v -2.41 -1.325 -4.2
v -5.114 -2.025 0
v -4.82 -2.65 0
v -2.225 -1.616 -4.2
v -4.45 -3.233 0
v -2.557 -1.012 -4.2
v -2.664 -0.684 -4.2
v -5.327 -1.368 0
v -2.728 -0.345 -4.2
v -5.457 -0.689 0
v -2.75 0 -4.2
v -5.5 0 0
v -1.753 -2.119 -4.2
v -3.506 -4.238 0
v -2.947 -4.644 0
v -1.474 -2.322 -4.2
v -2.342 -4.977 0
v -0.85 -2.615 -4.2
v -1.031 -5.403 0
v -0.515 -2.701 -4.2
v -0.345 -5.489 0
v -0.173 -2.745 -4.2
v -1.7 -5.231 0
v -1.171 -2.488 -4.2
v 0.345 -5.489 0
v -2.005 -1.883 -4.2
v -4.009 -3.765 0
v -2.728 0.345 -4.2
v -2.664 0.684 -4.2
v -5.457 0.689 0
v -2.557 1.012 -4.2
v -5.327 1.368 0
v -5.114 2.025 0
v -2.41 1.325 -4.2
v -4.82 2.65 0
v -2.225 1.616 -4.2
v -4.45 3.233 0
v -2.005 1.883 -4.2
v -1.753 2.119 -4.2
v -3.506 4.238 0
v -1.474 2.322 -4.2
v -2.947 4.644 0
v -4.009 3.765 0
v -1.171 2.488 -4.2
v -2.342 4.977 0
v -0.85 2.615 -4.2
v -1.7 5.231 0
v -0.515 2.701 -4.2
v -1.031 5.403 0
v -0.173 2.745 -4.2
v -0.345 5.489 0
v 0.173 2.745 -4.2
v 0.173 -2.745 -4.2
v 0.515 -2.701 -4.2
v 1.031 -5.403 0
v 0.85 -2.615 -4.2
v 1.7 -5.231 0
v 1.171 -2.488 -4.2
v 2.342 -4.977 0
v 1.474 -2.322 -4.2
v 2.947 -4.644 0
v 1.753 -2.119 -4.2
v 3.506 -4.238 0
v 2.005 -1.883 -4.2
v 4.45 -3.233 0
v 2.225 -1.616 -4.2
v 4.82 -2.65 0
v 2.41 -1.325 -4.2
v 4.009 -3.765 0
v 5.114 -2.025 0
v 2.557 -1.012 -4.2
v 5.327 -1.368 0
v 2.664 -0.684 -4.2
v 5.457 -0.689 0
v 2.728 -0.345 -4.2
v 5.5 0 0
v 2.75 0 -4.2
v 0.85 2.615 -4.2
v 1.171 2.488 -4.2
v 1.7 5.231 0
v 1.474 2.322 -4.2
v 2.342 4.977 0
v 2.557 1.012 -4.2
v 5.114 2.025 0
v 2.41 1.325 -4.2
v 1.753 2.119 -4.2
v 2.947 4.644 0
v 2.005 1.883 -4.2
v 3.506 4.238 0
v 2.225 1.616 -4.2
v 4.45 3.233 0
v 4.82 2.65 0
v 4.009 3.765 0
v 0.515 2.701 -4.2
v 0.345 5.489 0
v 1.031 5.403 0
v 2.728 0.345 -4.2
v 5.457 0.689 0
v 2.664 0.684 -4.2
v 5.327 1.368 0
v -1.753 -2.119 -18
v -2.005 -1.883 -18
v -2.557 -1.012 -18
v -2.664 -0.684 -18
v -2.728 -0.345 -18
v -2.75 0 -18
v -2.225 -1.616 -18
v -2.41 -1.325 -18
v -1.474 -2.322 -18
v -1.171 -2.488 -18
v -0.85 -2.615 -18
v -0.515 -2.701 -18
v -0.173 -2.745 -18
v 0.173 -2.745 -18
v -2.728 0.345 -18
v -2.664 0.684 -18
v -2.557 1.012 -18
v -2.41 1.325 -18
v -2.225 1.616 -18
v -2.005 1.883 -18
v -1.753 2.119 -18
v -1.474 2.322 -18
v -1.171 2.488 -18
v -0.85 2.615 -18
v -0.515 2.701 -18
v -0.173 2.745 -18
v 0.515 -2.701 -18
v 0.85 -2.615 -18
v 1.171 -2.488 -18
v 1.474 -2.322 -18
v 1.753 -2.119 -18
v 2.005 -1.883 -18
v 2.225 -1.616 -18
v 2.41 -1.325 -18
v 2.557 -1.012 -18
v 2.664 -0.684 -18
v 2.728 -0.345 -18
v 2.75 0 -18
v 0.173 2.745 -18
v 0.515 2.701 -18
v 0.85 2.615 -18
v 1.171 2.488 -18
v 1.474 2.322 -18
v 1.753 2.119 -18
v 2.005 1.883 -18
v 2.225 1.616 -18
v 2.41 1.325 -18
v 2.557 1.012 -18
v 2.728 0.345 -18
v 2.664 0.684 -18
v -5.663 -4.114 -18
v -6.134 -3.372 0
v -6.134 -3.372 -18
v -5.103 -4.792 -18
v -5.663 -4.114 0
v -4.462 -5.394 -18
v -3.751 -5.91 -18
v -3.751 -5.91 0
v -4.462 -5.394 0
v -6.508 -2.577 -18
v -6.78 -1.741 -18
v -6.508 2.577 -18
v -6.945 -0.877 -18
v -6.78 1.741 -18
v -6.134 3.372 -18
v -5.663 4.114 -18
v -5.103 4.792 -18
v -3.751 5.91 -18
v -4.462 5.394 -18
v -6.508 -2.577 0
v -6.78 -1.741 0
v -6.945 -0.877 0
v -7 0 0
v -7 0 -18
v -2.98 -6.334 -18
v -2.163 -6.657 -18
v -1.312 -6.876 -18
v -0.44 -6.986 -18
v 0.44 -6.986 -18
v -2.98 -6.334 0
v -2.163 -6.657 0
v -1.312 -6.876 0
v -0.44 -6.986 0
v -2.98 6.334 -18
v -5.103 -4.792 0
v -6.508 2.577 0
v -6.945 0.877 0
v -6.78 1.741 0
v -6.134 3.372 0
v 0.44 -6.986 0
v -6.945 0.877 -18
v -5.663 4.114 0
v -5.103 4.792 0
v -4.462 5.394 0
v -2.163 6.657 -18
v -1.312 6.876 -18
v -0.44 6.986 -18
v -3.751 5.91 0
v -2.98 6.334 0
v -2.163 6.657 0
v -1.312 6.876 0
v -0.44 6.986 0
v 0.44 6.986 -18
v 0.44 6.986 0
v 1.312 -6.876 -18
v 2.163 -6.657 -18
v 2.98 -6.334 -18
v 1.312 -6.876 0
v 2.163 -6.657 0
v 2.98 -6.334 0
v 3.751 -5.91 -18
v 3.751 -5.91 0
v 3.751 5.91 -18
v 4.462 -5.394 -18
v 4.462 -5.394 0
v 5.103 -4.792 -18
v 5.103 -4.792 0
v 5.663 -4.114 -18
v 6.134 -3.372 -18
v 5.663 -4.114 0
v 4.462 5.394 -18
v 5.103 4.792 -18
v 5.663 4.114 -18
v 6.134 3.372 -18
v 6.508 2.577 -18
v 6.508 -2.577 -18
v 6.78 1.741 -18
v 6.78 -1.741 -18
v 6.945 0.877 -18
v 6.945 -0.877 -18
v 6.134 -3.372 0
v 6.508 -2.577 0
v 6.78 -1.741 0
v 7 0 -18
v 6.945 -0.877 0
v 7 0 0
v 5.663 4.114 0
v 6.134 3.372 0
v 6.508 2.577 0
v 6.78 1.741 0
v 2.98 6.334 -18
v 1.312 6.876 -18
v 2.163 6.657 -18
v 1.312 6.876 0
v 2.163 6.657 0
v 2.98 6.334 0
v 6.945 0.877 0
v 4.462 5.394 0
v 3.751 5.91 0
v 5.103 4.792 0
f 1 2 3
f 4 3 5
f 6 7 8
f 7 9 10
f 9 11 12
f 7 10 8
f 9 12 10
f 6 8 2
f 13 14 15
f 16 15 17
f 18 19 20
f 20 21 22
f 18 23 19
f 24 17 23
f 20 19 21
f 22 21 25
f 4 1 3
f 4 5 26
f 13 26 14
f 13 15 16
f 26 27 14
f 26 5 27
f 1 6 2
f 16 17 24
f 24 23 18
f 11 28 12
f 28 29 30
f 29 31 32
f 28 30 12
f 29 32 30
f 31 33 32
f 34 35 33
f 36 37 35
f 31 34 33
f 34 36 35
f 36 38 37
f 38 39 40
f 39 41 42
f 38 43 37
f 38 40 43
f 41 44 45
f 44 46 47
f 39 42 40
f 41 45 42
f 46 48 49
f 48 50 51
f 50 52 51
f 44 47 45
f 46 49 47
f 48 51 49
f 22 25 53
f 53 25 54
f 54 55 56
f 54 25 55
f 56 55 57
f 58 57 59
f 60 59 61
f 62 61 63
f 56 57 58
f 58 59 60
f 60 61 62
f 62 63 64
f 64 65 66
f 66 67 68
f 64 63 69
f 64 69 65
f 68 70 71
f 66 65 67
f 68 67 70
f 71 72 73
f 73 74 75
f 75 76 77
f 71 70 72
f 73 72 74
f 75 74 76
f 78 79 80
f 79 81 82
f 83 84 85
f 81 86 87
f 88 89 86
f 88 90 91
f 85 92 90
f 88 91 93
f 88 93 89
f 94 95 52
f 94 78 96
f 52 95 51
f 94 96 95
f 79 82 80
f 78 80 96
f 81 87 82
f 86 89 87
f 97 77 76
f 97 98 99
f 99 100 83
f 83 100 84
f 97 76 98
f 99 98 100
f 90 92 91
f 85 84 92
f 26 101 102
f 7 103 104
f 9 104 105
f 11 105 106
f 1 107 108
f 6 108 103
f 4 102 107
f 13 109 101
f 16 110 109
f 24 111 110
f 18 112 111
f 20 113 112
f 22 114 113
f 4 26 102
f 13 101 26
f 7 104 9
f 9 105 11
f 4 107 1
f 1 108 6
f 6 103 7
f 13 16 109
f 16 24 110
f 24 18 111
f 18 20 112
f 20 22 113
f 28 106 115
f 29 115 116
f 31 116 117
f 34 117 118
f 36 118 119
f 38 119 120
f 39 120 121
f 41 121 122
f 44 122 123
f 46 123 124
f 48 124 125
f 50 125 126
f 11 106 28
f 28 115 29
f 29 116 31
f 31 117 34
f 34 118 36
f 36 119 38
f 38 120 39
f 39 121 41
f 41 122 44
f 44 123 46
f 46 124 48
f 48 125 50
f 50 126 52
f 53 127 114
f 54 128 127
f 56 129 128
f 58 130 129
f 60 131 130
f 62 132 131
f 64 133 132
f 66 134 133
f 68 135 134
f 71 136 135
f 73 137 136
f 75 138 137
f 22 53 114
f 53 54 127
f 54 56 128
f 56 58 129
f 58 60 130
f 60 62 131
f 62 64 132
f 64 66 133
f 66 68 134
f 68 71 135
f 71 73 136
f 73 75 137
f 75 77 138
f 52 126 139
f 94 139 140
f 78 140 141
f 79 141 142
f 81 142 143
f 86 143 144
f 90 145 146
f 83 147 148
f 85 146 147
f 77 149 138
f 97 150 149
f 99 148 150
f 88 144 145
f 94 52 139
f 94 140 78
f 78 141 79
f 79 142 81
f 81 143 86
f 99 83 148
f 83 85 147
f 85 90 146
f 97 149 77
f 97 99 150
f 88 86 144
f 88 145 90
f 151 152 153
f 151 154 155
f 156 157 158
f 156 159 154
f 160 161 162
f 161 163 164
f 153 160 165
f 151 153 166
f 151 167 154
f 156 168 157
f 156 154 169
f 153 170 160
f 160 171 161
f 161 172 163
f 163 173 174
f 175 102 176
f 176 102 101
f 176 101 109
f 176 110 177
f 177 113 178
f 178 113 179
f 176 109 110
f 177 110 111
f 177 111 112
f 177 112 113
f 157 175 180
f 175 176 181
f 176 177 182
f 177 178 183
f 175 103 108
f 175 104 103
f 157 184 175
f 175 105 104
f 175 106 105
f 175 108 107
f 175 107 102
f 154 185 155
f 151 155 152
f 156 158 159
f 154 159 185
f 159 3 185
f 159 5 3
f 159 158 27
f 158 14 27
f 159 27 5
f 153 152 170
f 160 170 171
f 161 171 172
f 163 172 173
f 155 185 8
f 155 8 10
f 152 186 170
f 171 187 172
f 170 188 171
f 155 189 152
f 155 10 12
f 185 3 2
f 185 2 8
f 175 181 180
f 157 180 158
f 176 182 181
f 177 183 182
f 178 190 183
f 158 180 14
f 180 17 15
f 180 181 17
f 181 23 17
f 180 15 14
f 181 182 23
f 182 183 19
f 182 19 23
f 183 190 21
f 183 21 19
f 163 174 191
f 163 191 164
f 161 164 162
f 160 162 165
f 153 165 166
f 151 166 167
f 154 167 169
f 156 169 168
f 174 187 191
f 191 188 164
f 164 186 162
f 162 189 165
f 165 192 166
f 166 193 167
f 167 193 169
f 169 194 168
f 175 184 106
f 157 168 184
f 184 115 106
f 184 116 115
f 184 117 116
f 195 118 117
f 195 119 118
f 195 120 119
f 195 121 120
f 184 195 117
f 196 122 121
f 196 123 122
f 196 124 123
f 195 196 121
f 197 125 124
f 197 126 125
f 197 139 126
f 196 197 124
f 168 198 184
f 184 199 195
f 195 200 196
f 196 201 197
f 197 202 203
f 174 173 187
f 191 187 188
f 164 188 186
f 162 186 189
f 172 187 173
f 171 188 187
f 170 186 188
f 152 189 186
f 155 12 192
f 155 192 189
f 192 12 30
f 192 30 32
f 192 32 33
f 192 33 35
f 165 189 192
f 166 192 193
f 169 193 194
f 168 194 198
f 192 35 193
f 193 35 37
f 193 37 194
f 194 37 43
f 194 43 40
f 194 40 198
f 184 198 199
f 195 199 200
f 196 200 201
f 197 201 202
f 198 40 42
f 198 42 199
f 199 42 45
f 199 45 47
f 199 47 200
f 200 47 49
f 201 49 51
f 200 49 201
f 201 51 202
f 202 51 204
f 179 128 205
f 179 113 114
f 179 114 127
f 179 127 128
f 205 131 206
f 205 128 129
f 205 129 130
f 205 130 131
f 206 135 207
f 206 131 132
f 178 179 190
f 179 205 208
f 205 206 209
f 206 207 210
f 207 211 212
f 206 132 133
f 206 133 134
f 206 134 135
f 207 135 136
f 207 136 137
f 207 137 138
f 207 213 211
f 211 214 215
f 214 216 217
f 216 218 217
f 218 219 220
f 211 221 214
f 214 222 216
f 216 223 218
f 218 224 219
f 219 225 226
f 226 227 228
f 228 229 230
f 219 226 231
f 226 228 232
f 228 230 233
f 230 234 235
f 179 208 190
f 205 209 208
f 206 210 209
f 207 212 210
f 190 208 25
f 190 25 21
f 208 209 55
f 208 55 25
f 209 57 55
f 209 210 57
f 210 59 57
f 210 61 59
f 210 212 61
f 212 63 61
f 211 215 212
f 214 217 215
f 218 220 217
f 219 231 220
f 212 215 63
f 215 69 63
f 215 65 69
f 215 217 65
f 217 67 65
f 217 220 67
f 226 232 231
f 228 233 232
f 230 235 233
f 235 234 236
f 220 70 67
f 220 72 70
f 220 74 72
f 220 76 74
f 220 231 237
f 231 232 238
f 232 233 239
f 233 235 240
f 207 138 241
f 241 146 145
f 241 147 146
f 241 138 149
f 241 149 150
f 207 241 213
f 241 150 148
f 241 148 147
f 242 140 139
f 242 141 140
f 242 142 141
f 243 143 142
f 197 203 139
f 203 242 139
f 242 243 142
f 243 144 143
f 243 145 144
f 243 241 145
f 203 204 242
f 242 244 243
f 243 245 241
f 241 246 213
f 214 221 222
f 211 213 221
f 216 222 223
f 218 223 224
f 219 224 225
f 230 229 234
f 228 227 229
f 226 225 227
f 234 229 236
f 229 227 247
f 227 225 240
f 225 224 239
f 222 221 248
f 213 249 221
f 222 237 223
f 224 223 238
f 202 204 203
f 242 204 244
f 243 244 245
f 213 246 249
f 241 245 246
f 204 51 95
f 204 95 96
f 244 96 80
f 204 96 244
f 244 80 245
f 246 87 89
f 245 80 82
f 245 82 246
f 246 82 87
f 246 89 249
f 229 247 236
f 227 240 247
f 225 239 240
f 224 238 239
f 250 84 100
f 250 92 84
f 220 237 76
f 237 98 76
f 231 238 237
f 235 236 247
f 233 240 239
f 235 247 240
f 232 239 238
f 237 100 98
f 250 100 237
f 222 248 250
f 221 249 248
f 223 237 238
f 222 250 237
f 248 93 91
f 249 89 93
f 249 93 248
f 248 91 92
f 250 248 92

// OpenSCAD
$fn = 50;


difference() {
	union() {
		translate(v = [0, 0, -18.0000000000]) {
			cylinder(h = 18, r = 7.0000000000);
		}
	}
	union() {
		translate(v = [0, 0, 0]) {
			rotate(a = [0, 0, 0]) {
				difference() {
					union() {
						translate(v = [0, 0, -21.0000000000]) {
							cylinder(h = 21, r = 2.2500000000);
						}
						translate(v = [0, 0, -4.2000000000]) {
							cylinder(h = 4.2000000000, r1 = 2.7500000000, r2 = 5.5000000000);
						}
						translate(v = [0, 0, -21.0000000000]) {
							cylinder(h = 21, r = 2.7500000000);
						}
						translate(v = [0, 0, -21.0000000000]) {
							cylinder(h = 21, r = 2.2500000000);
						}
					}
					union();
				}
			}
		}
	}
}
